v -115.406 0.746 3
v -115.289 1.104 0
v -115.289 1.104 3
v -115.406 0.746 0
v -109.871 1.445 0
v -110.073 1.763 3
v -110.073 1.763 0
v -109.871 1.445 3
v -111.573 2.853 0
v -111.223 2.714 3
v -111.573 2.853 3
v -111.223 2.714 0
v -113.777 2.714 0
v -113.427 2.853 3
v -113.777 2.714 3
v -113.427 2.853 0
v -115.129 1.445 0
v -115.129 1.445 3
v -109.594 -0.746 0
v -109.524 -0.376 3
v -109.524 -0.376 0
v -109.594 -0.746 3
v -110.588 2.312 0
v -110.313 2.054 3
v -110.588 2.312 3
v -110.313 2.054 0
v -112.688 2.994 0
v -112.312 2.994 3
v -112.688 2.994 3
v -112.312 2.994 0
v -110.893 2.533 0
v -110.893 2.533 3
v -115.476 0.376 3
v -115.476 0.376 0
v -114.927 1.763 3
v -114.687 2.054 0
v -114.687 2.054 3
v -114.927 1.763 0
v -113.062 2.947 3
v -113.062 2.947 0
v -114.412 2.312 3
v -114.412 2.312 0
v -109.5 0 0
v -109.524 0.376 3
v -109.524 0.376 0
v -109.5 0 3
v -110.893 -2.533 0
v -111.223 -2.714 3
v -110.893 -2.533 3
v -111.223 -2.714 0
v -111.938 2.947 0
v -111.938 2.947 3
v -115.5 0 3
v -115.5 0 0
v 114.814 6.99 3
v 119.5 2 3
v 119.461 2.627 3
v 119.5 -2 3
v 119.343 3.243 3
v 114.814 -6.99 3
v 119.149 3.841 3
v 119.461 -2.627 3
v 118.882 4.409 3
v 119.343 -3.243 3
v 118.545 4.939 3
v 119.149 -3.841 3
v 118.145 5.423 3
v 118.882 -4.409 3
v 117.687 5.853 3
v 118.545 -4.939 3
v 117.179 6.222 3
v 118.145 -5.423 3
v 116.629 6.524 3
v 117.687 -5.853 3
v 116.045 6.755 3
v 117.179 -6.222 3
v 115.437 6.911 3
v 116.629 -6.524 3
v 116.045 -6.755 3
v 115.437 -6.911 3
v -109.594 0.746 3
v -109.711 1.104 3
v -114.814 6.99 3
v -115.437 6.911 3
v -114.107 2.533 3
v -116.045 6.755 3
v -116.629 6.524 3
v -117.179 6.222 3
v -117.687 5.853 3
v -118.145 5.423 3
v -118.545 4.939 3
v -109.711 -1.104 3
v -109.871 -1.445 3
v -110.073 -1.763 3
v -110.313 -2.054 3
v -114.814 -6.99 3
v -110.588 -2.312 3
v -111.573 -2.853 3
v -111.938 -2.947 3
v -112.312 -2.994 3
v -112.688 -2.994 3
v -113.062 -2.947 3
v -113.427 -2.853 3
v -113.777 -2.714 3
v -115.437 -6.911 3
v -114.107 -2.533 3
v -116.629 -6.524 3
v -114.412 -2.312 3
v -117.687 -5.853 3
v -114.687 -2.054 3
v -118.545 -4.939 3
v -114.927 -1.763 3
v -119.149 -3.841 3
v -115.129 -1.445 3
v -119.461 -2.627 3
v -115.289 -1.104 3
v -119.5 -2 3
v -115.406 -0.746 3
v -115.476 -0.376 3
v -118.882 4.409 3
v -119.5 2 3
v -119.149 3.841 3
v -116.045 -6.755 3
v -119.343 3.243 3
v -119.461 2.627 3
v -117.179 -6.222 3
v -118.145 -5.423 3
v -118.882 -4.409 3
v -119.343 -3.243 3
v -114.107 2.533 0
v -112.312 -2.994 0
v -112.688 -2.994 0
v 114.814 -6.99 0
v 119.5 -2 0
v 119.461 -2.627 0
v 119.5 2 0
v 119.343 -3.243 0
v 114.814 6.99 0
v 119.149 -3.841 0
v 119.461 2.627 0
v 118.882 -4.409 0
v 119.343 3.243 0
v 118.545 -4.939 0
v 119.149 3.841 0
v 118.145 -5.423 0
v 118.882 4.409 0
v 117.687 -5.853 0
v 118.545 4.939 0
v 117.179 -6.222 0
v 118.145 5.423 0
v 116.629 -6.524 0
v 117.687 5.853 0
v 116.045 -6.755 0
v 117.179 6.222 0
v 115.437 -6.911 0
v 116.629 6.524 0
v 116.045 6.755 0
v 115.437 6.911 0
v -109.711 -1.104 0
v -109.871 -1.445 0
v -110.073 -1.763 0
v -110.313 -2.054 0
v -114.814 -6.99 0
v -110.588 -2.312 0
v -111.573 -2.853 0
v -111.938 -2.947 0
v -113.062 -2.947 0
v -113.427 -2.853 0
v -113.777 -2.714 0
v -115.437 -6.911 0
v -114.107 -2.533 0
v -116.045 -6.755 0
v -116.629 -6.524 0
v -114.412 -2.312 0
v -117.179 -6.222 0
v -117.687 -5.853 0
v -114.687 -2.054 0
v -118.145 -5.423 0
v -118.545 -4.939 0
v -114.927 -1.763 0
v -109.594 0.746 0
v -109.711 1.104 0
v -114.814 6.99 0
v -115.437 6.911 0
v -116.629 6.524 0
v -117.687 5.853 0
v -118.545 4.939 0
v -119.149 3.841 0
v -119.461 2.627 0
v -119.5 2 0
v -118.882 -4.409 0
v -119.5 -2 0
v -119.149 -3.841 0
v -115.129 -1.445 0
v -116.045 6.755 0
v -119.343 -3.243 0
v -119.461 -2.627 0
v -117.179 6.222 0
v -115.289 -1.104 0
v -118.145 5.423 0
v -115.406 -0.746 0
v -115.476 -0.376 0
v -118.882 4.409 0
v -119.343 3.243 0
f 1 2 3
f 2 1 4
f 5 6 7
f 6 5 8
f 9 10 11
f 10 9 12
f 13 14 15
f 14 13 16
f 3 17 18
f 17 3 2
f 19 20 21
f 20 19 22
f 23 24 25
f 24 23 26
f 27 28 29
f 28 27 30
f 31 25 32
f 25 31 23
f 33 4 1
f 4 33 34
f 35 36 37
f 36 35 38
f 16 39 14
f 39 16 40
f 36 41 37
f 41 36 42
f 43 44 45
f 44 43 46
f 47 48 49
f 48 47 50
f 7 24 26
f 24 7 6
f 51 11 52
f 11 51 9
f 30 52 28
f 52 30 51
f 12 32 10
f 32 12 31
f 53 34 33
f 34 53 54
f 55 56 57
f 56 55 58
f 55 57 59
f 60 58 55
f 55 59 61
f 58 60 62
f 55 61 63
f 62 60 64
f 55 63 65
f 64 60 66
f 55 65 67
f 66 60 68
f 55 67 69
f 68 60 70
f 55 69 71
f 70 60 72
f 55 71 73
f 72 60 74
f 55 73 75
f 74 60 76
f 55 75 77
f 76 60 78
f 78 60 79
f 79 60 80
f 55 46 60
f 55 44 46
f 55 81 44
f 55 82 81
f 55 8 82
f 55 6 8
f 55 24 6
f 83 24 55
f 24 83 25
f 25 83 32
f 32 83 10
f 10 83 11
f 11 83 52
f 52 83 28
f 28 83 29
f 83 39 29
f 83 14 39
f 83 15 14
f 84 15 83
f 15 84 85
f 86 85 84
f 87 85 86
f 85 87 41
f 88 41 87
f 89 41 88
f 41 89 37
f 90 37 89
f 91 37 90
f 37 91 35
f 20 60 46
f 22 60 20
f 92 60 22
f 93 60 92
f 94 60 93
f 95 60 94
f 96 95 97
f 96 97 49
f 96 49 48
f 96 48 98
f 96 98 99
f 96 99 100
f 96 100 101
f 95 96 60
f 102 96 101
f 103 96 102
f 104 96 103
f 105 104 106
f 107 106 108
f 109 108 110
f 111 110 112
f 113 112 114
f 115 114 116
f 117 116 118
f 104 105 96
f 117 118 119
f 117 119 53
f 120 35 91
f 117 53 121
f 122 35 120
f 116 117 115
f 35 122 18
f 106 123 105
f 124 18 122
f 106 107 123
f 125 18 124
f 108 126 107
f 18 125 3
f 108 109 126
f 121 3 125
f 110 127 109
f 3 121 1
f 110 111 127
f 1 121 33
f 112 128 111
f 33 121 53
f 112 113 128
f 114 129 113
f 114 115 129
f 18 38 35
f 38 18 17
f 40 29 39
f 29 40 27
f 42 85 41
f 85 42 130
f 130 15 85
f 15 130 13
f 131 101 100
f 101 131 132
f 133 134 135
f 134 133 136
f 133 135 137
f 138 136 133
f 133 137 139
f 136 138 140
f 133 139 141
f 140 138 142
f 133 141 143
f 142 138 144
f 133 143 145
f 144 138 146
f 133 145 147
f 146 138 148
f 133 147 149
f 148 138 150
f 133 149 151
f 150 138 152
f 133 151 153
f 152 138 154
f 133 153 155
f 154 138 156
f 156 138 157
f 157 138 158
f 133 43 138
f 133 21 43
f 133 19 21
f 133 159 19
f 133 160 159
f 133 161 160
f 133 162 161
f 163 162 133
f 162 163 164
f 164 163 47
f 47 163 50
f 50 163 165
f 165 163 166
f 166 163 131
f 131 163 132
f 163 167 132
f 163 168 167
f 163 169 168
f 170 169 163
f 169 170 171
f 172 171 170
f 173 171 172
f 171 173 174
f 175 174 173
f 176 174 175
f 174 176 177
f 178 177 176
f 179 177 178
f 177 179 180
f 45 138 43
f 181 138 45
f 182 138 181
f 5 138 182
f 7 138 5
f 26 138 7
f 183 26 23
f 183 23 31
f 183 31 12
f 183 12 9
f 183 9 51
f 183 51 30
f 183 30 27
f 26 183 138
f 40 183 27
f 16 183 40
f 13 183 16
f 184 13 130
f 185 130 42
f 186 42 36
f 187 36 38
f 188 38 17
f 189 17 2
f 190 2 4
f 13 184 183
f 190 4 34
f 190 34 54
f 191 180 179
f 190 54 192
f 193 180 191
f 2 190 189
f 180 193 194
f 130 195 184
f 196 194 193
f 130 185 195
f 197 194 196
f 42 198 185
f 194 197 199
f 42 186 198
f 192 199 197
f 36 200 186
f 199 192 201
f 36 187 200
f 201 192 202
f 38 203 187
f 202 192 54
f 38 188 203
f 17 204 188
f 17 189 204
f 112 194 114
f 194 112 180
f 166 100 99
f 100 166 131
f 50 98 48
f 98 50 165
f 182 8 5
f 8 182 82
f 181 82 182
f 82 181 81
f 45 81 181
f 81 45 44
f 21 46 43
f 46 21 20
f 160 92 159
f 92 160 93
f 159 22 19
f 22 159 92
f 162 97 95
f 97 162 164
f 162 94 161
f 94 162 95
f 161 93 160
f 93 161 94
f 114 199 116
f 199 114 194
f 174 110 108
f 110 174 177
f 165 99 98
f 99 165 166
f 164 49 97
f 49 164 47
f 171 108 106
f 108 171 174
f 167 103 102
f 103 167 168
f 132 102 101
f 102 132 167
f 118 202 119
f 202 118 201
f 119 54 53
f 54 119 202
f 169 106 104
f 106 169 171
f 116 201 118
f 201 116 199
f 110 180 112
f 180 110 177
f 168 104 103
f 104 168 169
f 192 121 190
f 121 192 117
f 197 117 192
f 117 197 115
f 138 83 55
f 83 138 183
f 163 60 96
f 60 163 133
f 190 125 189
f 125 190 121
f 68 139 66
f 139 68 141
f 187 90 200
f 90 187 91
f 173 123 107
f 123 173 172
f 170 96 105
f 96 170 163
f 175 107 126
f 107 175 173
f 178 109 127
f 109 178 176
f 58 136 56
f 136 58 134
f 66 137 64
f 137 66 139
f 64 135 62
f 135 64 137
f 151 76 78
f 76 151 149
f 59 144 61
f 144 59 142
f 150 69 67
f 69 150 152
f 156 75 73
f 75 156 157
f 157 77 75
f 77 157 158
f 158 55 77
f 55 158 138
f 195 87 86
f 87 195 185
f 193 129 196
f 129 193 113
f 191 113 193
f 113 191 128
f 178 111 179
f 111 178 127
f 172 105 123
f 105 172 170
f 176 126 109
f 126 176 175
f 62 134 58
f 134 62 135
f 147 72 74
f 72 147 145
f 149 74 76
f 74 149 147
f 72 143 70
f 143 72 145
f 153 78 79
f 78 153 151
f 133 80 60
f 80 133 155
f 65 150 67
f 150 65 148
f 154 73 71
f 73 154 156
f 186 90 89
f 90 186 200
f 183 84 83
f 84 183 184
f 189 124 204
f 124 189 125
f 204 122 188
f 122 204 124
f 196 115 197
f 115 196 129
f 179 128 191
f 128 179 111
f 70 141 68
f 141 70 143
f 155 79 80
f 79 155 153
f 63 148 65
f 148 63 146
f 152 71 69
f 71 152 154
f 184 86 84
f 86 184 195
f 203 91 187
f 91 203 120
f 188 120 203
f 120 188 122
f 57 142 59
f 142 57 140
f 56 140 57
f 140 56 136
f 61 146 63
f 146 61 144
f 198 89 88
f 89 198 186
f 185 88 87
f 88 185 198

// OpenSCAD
$fn = 50;


difference() {
	union() {
		hull() {
			translate(v = [-114.5000000000, 2.0000000000, 0]) {
				cylinder(h = 3, r = 5);
			}
			translate(v = [114.5000000000, 2.0000000000, 0]) {
				cylinder(h = 3, r = 5);
			}
			translate(v = [-114.5000000000, -2.0000000000, 0]) {
				cylinder(h = 3, r = 5);
			}
			translate(v = [114.5000000000, -2.0000000000, 0]) {
				cylinder(h = 3, r = 5);
			}
		}
	}
	union() {
		translate(v = [-112.5000000000, 0.0000000000, 0]) {
			cylinder(h = 3, r = 3.0000000000);
		}
		translate(v = [-112.5000000000, 0.0000000000, 0]) {
			cylinder(h = 3, r = 1.5000000000);
		}
		translate(v = [-112.5000000000, 0.0000000000, 0]) {
			cylinder(h = 3, r = 1.5000000000);
		}
		translate(v = [-112.5000000000, 0.0000000000, 0]) {
			cylinder(h = 3, r = 1.5000000000);
		}
	}
}
